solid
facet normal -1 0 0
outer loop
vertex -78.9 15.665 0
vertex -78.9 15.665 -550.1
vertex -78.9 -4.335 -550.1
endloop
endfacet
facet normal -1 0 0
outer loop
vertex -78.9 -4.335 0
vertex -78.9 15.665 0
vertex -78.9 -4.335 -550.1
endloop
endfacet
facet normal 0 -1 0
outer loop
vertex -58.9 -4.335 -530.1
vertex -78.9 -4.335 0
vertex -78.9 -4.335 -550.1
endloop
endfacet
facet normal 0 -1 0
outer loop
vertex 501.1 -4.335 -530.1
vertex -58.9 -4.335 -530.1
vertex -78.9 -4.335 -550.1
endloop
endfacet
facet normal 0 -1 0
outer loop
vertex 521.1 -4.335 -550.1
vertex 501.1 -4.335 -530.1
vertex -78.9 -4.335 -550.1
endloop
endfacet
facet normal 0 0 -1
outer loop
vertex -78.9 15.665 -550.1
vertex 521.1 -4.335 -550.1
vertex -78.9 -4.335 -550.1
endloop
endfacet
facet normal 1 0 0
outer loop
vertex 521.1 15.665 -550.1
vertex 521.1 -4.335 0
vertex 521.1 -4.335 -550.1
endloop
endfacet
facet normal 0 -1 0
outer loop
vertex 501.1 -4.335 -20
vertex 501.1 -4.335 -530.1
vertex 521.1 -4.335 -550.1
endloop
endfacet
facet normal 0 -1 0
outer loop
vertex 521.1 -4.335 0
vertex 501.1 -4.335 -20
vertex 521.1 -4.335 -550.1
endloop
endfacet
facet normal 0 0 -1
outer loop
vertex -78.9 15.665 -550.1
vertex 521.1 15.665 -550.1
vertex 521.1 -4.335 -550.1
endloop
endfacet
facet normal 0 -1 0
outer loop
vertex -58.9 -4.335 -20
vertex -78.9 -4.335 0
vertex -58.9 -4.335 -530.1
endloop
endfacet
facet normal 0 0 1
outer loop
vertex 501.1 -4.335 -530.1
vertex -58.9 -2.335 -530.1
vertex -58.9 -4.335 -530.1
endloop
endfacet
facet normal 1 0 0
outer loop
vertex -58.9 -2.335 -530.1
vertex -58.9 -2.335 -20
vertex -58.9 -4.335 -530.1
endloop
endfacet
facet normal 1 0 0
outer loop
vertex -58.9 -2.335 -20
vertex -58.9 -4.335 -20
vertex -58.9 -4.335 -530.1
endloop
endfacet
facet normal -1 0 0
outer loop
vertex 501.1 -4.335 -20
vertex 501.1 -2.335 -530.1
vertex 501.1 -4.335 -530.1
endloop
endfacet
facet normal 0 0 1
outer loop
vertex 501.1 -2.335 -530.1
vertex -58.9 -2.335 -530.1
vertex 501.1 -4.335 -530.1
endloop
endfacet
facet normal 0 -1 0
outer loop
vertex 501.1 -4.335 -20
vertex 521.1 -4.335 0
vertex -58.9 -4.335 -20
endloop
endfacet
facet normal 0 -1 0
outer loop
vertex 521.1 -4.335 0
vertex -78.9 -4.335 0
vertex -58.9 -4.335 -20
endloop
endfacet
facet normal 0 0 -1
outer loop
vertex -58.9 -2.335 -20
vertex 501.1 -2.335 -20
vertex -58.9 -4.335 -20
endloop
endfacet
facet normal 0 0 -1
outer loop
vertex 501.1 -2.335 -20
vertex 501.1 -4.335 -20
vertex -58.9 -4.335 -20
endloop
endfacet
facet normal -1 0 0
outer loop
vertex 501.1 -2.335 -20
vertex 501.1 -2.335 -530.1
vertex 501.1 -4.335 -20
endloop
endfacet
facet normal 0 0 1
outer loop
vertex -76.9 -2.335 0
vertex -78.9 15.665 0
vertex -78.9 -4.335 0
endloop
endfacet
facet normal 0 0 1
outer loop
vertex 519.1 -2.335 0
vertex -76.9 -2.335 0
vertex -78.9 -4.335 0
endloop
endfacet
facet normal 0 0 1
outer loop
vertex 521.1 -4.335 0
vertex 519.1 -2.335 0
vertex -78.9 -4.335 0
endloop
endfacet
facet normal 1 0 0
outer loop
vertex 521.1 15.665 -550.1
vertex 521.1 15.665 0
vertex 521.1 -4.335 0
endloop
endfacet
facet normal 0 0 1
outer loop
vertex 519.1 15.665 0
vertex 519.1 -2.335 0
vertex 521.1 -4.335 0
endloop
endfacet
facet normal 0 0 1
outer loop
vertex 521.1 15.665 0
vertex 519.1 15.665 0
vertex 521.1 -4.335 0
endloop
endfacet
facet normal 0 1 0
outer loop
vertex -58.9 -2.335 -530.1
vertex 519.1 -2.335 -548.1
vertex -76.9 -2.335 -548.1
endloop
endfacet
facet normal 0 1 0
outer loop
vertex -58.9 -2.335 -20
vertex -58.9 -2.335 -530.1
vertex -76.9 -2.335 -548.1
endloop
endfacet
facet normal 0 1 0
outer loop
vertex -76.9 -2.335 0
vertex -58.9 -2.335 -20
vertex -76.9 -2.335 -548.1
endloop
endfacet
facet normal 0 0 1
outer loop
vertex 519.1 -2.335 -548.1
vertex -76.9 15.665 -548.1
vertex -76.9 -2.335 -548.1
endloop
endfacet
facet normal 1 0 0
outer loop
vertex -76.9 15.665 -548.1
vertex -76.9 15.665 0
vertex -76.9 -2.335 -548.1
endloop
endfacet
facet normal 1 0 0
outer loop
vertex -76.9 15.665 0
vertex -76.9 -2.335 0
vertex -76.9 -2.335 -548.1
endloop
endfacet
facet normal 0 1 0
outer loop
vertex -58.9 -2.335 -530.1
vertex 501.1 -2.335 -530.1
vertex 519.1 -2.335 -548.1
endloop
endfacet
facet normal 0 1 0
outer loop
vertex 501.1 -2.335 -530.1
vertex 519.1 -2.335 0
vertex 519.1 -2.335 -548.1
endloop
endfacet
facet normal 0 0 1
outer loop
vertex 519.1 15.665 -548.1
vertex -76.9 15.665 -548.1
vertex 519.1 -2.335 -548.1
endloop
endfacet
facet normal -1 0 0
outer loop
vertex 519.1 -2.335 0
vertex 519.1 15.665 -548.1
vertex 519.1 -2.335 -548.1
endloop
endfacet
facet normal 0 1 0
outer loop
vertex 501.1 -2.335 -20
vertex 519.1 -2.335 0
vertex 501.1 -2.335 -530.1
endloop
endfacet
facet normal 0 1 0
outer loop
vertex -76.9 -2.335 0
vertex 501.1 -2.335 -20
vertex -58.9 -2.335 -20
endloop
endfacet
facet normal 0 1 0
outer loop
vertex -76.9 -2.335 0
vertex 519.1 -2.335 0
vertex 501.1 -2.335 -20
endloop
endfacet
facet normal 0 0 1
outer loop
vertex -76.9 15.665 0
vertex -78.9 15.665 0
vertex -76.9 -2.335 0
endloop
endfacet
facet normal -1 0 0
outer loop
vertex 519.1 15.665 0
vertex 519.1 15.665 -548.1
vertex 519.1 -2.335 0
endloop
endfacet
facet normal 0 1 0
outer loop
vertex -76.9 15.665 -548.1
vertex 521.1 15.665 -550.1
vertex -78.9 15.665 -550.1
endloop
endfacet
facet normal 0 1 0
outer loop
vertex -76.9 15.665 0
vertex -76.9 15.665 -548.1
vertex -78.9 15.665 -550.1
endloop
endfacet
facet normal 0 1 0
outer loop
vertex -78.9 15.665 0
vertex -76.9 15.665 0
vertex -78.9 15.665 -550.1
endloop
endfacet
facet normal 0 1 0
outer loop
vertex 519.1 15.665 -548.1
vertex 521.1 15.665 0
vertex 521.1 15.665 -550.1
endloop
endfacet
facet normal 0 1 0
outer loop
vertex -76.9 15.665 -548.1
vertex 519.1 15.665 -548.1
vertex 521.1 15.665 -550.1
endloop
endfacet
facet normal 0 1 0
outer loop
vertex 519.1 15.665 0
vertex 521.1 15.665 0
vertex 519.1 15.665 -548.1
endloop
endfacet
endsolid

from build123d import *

# Parameters (mm, degrees)
SKETCH1_W           = 600
SKETCH1_H           = 20
BOSS_EXTRUDE1_DEPTH = 550.1
CUT_EXTRUDE1_DEPTH  = 18
CUT_EXTRUDE2_DEPTH  = 2
SKETCH2_W           = 596
SKETCH2_H           = 18
CUT_EXTRUDE3_DEPTH  = 2


with BuildPart() as part:
    # Sketch1 → Boss-Extrude1 (new body)
    with BuildSketch(Plane.XY):
        with Locations((221.099899989, 5.665003505)):
            Rectangle(SKETCH1_W, SKETCH1_H)
    extrude(amount=-BOSS_EXTRUDE1_DEPTH)

    # 3DSketch1 → Cut-Extrude1 (cut)
    with BuildSketch(Plane(origin=(519.099899989, 15.665003505, -548.1), x_dir=(-0.7372979045405654, 0, 0.6755677611906087), z_dir=(0, 1, 0))):
        Polygon((0, 0), (439.429551106, -402.63838567), (808.357105492, 0), (368.927554386, 402.63838567), align=None)
    extrude(amount=-CUT_EXTRUDE1_DEPTH, mode=Mode.SUBTRACT)

    # 3DSketch2 → Cut-Extrude2 (cut)
    with BuildSketch(Plane(origin=(-58.900100011, -2.334996495, -530.1), x_dir=(0.7392766587492063, 0, 0.6734018279070896), z_dir=(0, 1, 0))):
        Polygon((0, 0), (413.9949289, 377.105023628), (757.497201315, 0), (343.502272415, -377.105023628), align=None)
    extrude(amount=-CUT_EXTRUDE2_DEPTH, mode=Mode.SUBTRACT)

    # Sketch2 → Cut-Extrude3 (cut)
    with BuildSketch(Plane(origin=(0, 0, -2), x_dir=(-1, 0, 0), z_dir=(0, 0, -1))):
        with Locations((-221.099899989, 6.665003505)):
            Rectangle(SKETCH2_W, SKETCH2_H)
    extrude(amount=-CUT_EXTRUDE3_DEPTH, mode=Mode.SUBTRACT)


solid = part.part
